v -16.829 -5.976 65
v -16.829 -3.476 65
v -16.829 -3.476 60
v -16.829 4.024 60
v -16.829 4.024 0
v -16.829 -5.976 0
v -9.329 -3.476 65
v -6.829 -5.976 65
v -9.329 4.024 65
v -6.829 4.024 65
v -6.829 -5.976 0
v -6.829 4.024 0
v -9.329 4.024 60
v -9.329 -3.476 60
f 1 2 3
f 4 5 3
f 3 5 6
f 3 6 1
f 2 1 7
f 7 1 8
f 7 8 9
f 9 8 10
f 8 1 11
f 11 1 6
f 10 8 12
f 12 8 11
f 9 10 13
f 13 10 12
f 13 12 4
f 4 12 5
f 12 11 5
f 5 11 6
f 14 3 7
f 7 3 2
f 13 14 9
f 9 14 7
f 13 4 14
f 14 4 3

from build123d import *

# Parameters (mm, degrees)
SKETCH1_W           = 10
SKETCH1_H           = 10
BOSS_EXTRUDE1_DEPTH = 65
CUT_EXTRUDE1_DEPTH  = 5


with BuildPart() as part:
    # Sketch1 → Boss-Extrude1 (new body)
    with BuildSketch(Plane.XY):
        with Locations((-11.829268293, -0.975609756)):
            Rectangle(SKETCH1_W, SKETCH1_H)
    extrude(amount=BOSS_EXTRUDE1_DEPTH)

    # Sketch2 → Cut-Extrude1 (cut)
    with BuildSketch(Plane.XY.offset(65)):
        Polygon((-9.329268293, 1.524390244), (-11.829268293, 4.024390244), (-16.829268293, 4.024390244), (-16.829268293, -3.475609756), (-9.329268293, -3.475609756), align=None)
        Polygon((-9.329268293, 4.024390244), (-11.829268293, 4.024390244), (-9.329268293, 1.524390244), align=None)
    extrude(amount=-CUT_EXTRUDE1_DEPTH, mode=Mode.SUBTRACT)


solid = part.part
